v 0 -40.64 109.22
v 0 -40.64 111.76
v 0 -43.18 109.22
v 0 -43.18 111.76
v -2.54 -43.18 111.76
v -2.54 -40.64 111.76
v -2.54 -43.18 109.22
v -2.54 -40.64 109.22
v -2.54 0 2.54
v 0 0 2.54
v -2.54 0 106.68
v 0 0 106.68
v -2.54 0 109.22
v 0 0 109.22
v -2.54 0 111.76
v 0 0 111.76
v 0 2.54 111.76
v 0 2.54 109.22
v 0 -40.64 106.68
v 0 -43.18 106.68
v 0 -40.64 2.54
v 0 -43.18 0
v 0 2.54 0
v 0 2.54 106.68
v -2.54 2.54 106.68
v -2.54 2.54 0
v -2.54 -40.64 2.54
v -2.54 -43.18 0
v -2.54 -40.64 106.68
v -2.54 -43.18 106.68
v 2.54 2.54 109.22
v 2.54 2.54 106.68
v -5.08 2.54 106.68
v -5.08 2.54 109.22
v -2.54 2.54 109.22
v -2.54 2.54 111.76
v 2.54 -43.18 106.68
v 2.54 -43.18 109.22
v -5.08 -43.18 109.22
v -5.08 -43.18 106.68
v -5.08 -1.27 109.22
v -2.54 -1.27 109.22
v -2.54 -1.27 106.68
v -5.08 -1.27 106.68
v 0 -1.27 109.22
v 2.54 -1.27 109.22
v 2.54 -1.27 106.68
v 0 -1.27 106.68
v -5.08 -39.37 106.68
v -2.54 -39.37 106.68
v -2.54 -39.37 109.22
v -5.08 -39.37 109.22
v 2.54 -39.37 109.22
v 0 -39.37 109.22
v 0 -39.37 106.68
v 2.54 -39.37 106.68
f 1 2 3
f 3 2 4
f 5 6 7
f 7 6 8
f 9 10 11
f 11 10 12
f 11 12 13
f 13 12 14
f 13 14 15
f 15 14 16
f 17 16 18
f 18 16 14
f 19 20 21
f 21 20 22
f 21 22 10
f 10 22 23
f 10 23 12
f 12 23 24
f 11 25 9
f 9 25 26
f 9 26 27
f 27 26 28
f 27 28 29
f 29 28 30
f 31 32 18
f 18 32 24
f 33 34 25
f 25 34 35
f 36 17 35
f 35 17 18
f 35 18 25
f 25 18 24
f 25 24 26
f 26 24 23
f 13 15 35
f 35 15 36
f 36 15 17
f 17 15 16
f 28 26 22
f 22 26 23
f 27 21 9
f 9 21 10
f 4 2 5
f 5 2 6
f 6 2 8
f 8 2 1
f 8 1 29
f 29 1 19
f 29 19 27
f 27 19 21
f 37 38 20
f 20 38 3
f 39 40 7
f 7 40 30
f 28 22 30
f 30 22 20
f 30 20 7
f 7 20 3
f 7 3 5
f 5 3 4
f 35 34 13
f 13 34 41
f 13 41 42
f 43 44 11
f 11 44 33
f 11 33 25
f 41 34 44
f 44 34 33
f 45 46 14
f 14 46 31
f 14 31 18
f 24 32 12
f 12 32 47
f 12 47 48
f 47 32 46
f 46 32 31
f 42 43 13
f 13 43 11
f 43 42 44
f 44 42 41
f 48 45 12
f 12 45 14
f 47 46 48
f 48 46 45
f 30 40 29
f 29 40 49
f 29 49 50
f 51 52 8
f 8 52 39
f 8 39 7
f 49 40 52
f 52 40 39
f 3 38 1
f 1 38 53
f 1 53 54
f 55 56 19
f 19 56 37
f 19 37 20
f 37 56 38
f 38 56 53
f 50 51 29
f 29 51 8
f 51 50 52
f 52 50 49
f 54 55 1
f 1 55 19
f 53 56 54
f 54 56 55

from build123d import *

# Parameters (mm, degrees)
SKETCH1_W           = 2.54
SKETCH1_H           = 2.54
BOSS_EXTRUDE1_DEPTH = 111.76
SKETCH2_W           = 2.54
SKETCH2_H           = 2.54
BOSS_EXTRUDE2_DEPTH = 40.64
SKETCH3_W           = 2.54
SKETCH3_H           = 2.54
BOSS_EXTRUDE3_DEPTH = 111.76
SKETCH5_W           = 2.54
SKETCH5_H           = 2.54
BOSS_EXTRUDE4_DEPTH = 2.54
SKETCH6_W           = 2.54
SKETCH6_H           = 2.54
BOSS_EXTRUDE5_DEPTH = 2.54
SKETCH7_W           = 2.54
SKETCH7_H           = 2.54
BOSS_EXTRUDE6_DEPTH = 1.27


with BuildPart() as part:
    # Sketch1 → Boss-Extrude1 (new body)
    with BuildSketch(Plane.XY):
        with Locations((-1.27, 1.27)):
            Rectangle(SKETCH1_W, SKETCH1_H)
    extrude(amount=BOSS_EXTRUDE1_DEPTH)

    # Sketch2 → Boss-Extrude2 (add)
    with BuildSketch(Plane.XZ):
        with Locations((-1.27, 1.27)):
            Rectangle(SKETCH2_W, SKETCH2_H)
    extrude(amount=BOSS_EXTRUDE2_DEPTH)

    # Sketch3 → Boss-Extrude3 (add)
    with BuildSketch(Plane(origin=(0, 0, 0), x_dir=(-1, 0, 0), z_dir=(0, 0, -1))):
        with Locations((1.27, -41.91)):
            Rectangle(SKETCH3_W, SKETCH3_H)
    extrude(amount=-BOSS_EXTRUDE3_DEPTH)

    # Sketch5 → Boss-Extrude4 (add)
    with BuildSketch(Plane.ZY.offset(2.54)):
        with Locations((107.95, 1.27)):
            Rectangle(SKETCH5_W, SKETCH5_H)
    boss_extrude4 = extrude(amount=BOSS_EXTRUDE4_DEPTH)

    # Sketch6 → Boss-Extrude5 (add)
    with BuildSketch(Plane(origin=(0, 0, 0), x_dir=(0, 0, -1), z_dir=(1, 0, 0))):
        with Locations((-107.95, 1.27)):
            Rectangle(SKETCH6_W, SKETCH6_H)
    boss_extrude5 = extrude(amount=BOSS_EXTRUDE5_DEPTH)

    # Sketch7 → Boss-Extrude6 (add)
    with BuildSketch(Plane(origin=(0, 0, 0), x_dir=(-1, 0, 0), z_dir=(0, -1, 0))):
        with Locations((3.81, -107.95)):
            Rectangle(SKETCH7_W, SKETCH7_H)
        with Locations((-1.27, -107.95)):
            Rectangle(SKETCH7_W, SKETCH7_H)
    boss_extrude6 = extrude(amount=BOSS_EXTRUDE6_DEPTH)

    # Mirror1: Boss-Extrude4, Boss-Extrude5, Boss-Extrude6 across plane
    add(boss_extrude4.mirror(Plane(origin=(0, -20.32, 0), x_dir=(0, 0, 1), z_dir=(0, -1, 0))))
    add(boss_extrude5.mirror(Plane(origin=(0, -20.32, 0), x_dir=(0, 0, 1), z_dir=(0, -1, 0))))
    add(boss_extrude6.mirror(Plane(origin=(0, -20.32, 0), x_dir=(0, 0, 1), z_dir=(0, -1, 0))))


solid = part.part
